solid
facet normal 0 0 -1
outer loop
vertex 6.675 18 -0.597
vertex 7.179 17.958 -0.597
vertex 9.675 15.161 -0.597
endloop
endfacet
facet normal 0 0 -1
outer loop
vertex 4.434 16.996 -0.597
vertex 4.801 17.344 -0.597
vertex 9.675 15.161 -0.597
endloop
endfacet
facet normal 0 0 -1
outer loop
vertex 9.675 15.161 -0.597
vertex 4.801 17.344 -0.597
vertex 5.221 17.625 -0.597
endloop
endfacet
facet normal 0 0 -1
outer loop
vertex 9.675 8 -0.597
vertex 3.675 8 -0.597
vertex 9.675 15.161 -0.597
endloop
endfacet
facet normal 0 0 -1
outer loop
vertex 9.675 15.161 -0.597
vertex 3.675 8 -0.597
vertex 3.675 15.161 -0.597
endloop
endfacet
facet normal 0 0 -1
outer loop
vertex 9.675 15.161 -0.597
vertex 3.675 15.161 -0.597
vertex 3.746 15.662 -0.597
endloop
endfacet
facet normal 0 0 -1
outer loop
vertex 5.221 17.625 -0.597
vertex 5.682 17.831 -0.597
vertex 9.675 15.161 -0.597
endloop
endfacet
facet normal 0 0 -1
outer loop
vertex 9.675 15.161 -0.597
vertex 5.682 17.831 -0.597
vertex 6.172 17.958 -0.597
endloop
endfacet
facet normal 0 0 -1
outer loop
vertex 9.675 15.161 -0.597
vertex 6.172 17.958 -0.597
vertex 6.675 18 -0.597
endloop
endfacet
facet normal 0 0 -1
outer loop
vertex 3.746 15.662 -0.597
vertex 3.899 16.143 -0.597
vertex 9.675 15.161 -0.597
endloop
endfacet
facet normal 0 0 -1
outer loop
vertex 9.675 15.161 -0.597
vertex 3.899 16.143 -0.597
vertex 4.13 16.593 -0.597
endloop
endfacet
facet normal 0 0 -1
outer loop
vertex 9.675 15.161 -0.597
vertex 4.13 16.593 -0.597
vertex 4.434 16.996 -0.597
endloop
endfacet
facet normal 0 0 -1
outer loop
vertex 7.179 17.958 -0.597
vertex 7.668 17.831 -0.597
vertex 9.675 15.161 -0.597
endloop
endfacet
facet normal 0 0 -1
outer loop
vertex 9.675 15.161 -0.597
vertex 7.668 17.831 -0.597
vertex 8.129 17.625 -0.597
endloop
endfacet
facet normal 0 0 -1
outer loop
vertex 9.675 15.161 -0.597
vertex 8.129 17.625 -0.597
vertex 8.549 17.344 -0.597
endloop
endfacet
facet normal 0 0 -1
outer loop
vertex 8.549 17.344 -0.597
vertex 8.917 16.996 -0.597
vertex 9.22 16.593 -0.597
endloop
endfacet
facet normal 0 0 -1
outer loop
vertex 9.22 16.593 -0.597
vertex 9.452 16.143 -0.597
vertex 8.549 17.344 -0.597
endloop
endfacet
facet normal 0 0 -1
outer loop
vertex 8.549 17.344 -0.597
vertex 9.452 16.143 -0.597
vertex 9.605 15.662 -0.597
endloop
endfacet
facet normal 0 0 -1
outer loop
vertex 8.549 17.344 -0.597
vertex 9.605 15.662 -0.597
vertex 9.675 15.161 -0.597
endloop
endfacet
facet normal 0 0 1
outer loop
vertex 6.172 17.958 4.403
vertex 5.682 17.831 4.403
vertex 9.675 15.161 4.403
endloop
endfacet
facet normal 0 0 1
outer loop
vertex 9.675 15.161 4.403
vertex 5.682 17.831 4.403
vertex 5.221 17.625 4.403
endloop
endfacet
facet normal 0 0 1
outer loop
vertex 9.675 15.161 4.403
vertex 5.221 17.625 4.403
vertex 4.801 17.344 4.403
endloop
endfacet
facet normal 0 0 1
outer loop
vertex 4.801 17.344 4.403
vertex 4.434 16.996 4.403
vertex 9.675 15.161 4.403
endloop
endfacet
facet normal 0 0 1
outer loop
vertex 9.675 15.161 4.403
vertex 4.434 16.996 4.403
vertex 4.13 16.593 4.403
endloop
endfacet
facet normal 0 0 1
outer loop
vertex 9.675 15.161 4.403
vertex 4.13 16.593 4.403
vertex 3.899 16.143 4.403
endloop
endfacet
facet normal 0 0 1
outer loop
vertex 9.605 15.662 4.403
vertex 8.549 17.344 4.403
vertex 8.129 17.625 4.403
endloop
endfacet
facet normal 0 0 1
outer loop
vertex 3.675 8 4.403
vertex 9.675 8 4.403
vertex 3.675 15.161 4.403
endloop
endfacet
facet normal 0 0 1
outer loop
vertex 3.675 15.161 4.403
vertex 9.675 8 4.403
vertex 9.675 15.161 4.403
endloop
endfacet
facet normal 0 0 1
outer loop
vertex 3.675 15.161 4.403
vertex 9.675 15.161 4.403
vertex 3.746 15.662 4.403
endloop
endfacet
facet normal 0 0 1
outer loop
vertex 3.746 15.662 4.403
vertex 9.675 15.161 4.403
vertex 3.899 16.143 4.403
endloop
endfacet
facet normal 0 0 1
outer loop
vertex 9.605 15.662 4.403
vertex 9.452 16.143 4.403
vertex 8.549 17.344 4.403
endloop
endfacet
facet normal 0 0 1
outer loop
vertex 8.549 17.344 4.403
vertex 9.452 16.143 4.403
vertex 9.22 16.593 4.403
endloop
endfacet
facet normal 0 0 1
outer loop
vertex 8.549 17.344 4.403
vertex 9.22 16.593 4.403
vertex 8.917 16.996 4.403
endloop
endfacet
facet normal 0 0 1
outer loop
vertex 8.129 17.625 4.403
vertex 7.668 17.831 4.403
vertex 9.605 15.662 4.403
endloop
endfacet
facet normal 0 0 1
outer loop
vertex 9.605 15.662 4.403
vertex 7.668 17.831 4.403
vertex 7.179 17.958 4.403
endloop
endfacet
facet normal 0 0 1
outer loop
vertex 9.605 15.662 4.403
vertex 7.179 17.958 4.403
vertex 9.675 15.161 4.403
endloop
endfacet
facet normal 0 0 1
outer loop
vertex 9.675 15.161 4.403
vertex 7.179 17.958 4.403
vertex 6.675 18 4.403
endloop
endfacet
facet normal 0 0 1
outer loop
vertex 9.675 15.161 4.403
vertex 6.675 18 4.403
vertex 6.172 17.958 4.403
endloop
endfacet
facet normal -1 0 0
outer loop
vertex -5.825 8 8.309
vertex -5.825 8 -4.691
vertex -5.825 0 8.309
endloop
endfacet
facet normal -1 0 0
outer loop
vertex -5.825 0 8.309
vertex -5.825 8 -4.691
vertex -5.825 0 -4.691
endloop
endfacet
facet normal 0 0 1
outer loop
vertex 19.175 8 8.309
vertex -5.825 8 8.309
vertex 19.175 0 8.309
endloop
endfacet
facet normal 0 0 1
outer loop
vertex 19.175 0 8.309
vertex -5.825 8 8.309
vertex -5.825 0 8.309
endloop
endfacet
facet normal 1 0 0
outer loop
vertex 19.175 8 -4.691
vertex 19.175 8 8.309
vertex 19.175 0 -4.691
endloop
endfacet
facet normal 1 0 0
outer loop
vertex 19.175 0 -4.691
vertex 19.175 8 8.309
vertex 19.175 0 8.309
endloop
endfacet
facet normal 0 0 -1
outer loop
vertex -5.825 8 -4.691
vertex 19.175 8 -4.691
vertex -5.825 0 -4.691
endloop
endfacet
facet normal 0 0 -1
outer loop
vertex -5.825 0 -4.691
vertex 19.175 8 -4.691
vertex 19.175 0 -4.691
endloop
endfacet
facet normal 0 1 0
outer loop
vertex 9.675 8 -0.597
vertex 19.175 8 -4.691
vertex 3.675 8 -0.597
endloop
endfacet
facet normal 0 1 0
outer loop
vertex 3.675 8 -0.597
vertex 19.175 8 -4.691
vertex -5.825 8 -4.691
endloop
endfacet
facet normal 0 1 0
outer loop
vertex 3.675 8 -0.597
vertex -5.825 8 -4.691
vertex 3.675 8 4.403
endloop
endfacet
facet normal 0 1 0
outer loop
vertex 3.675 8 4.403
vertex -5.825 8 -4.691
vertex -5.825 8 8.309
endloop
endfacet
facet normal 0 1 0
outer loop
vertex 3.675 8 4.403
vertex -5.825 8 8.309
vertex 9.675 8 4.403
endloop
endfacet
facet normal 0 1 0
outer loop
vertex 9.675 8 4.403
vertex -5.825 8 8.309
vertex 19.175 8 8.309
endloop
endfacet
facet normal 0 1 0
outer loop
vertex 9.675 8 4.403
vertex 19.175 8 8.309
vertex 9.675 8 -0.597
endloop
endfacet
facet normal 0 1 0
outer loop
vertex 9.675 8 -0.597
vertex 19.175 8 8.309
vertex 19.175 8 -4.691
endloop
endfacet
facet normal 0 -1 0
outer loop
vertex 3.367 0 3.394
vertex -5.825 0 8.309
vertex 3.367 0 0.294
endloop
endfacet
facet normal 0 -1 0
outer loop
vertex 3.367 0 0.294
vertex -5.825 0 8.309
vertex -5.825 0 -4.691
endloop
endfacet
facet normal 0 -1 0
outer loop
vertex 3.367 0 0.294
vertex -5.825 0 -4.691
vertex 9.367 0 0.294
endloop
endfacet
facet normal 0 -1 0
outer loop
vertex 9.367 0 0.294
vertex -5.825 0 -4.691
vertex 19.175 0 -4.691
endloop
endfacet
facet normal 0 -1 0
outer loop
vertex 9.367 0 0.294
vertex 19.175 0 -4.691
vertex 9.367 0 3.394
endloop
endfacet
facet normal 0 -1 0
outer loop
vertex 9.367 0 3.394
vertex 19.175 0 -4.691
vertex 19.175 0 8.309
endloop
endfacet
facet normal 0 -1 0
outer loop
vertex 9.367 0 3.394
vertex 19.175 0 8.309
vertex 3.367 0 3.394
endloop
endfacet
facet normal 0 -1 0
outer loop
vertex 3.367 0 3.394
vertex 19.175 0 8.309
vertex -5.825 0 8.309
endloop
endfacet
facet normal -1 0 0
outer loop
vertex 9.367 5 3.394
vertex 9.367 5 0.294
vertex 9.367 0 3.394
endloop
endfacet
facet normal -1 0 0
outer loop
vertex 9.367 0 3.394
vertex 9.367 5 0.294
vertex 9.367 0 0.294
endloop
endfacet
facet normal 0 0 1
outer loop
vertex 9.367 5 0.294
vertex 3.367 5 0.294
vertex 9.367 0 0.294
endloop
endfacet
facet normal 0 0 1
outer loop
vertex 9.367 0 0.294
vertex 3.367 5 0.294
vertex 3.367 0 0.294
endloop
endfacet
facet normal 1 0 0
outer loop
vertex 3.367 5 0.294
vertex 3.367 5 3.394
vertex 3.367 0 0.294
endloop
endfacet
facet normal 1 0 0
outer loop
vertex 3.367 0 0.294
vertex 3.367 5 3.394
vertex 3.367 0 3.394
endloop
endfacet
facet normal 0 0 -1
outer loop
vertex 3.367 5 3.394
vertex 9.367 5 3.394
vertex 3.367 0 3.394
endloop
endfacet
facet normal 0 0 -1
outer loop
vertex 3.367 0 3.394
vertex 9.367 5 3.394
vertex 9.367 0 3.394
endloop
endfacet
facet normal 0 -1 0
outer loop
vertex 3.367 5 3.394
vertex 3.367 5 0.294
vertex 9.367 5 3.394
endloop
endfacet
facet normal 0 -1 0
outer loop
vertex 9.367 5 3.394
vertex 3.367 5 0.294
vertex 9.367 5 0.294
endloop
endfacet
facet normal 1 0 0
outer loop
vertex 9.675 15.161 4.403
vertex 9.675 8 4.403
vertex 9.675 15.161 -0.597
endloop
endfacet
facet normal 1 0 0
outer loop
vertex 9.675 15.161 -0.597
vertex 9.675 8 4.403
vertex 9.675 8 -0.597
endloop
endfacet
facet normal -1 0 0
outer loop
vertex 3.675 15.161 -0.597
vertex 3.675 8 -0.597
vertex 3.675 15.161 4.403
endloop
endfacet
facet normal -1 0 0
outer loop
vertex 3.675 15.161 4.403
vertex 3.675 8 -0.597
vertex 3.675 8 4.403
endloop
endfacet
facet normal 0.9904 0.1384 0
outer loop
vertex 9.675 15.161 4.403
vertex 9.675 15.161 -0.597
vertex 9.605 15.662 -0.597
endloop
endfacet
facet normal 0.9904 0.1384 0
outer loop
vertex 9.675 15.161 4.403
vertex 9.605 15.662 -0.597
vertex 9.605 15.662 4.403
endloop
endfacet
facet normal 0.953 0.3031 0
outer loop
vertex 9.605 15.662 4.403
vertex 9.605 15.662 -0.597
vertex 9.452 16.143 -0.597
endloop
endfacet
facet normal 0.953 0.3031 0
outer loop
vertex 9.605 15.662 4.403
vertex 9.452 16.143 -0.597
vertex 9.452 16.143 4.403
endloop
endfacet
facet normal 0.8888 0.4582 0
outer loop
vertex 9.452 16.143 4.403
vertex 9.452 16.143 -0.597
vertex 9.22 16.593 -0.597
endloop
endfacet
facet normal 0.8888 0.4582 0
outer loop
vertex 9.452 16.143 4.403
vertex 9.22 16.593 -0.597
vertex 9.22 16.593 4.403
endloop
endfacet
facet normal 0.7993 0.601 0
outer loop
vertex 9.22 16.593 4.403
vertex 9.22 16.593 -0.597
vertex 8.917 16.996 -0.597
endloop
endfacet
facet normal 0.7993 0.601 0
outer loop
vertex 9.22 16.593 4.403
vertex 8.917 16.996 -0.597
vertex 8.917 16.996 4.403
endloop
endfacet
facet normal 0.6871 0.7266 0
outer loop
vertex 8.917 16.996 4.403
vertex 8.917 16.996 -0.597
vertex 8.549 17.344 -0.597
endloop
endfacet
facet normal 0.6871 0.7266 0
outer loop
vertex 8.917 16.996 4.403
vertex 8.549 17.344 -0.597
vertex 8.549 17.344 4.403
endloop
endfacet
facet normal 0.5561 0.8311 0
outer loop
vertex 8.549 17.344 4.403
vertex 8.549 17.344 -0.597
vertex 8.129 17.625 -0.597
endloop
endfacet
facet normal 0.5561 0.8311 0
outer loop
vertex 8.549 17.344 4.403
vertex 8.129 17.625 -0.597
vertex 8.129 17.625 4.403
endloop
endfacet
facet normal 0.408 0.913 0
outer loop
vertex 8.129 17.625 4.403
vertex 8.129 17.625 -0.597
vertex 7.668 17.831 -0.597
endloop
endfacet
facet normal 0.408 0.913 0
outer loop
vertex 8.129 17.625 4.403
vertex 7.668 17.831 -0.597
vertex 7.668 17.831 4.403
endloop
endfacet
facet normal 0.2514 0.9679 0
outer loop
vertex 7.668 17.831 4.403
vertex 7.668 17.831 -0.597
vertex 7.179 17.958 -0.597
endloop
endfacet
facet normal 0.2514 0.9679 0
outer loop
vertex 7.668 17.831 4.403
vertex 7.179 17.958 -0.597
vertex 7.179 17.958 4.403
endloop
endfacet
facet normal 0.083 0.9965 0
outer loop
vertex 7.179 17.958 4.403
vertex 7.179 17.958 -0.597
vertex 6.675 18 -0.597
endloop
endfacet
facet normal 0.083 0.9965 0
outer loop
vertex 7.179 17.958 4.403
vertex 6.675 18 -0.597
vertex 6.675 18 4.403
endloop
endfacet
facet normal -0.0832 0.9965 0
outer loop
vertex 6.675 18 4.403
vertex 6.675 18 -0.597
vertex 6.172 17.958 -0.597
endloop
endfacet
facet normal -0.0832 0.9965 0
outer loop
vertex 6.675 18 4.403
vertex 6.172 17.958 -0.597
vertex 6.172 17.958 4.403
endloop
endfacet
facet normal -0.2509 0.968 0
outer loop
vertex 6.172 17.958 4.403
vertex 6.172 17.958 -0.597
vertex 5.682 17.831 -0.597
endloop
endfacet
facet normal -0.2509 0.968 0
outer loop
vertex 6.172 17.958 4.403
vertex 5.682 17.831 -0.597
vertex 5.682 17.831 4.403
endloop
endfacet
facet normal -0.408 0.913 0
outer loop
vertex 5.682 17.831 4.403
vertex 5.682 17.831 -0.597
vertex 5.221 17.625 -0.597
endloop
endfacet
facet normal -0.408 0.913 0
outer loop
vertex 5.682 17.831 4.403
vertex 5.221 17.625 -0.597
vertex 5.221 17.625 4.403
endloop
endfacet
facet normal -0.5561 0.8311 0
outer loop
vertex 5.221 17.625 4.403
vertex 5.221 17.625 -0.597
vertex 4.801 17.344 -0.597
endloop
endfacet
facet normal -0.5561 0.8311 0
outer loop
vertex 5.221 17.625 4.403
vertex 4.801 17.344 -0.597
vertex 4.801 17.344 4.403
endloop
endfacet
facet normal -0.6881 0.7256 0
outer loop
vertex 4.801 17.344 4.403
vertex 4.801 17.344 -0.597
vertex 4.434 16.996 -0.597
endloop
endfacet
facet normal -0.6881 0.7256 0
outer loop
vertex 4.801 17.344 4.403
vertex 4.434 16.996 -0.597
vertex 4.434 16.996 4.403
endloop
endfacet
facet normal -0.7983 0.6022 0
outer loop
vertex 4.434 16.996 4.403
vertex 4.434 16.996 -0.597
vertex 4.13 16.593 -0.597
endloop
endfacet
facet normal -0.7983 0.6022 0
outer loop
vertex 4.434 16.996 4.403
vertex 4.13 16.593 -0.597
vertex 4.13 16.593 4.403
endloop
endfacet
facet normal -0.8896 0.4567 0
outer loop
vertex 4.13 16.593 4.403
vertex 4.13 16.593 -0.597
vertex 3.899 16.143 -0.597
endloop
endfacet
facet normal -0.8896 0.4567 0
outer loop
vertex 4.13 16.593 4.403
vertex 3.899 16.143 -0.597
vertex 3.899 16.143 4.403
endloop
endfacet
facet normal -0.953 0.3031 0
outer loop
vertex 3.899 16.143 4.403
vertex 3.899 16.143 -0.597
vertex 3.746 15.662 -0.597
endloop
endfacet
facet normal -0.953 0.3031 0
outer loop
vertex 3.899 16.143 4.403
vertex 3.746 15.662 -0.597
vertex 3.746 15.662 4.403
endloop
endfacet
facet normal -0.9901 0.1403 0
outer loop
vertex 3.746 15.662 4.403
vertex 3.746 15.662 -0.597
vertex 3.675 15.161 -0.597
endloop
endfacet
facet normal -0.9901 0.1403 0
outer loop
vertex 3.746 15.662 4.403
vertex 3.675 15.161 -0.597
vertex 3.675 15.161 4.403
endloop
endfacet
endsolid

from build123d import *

# Parameters (mm, degrees)
SKETCH3_W           = 25
SKETCH3_H           = 13
BOSS_EXTRUDE1_DEPTH = 8
SKETCH4_W           = 6
SKETCH4_H           = 3.1
CUT_EXTRUDE1_DEPTH  = 5
SKETCH5_W           = 6
SKETCH5_H           = 5
BOSS_EXTRUDE2_DEPTH = 10
CUT_EXTRUDE2_DEPTH  = 10


with BuildPart() as part:
    # Sketch3 → Boss-Extrude1 (new body)
    with BuildSketch(Plane(origin=(0, 0, 0), x_dir=(1, 0, 0), z_dir=(0, 1, 0))):
        with Locations((6.675257732, -1.809278351)):
            Rectangle(SKETCH3_W, SKETCH3_H)
    extrude(amount=BOSS_EXTRUDE1_DEPTH)

    # Sketch4 → Cut-Extrude1 (cut)
    with BuildSketch(Plane.XZ):
        with Locations((6.367389679, 1.844147545)):
            Rectangle(SKETCH4_W, SKETCH4_H)
    extrude(amount=-CUT_EXTRUDE1_DEPTH, mode=Mode.SUBTRACT)

    # Sketch5 → Boss-Extrude2 (add)
    with BuildSketch(Plane(origin=(0, 8, 0), x_dir=(1, 0, 0), z_dir=(0, 1, 0))):
        with Locations((6.675257732, -1.902518117)):
            Rectangle(SKETCH5_W, SKETCH5_H)
    extrude(amount=BOSS_EXTRUDE2_DEPTH)

    # Sketch6 → Cut-Extrude2 (cut)
    with BuildSketch(Plane(origin=(0, 0, -0.597481883), x_dir=(-1, 0, 0), z_dir=(0, 0, -1))):
        with BuildLine():
            Line((-3.675257732, 18), (-6.675257732, 18))
            ThreePointArc((-6.675257732, 18), (-4.610198245, 17.177859086), (-3.675257732, 15.161358998))
            Line((-3.675257732, 15.161358998), (-3.675257732, 18))
        make_face()
        with BuildLine():
            Line((-9.675257732, 18), (-9.675257732, 15.161358998))
            ThreePointArc((-9.675257732, 15.161358998), (-8.740317219, 17.177859086), (-6.675257732, 18))
            Line((-6.675257732, 18), (-9.675257732, 18))
        make_face()
    extrude(amount=-CUT_EXTRUDE2_DEPTH, mode=Mode.SUBTRACT)


solid = part.part
